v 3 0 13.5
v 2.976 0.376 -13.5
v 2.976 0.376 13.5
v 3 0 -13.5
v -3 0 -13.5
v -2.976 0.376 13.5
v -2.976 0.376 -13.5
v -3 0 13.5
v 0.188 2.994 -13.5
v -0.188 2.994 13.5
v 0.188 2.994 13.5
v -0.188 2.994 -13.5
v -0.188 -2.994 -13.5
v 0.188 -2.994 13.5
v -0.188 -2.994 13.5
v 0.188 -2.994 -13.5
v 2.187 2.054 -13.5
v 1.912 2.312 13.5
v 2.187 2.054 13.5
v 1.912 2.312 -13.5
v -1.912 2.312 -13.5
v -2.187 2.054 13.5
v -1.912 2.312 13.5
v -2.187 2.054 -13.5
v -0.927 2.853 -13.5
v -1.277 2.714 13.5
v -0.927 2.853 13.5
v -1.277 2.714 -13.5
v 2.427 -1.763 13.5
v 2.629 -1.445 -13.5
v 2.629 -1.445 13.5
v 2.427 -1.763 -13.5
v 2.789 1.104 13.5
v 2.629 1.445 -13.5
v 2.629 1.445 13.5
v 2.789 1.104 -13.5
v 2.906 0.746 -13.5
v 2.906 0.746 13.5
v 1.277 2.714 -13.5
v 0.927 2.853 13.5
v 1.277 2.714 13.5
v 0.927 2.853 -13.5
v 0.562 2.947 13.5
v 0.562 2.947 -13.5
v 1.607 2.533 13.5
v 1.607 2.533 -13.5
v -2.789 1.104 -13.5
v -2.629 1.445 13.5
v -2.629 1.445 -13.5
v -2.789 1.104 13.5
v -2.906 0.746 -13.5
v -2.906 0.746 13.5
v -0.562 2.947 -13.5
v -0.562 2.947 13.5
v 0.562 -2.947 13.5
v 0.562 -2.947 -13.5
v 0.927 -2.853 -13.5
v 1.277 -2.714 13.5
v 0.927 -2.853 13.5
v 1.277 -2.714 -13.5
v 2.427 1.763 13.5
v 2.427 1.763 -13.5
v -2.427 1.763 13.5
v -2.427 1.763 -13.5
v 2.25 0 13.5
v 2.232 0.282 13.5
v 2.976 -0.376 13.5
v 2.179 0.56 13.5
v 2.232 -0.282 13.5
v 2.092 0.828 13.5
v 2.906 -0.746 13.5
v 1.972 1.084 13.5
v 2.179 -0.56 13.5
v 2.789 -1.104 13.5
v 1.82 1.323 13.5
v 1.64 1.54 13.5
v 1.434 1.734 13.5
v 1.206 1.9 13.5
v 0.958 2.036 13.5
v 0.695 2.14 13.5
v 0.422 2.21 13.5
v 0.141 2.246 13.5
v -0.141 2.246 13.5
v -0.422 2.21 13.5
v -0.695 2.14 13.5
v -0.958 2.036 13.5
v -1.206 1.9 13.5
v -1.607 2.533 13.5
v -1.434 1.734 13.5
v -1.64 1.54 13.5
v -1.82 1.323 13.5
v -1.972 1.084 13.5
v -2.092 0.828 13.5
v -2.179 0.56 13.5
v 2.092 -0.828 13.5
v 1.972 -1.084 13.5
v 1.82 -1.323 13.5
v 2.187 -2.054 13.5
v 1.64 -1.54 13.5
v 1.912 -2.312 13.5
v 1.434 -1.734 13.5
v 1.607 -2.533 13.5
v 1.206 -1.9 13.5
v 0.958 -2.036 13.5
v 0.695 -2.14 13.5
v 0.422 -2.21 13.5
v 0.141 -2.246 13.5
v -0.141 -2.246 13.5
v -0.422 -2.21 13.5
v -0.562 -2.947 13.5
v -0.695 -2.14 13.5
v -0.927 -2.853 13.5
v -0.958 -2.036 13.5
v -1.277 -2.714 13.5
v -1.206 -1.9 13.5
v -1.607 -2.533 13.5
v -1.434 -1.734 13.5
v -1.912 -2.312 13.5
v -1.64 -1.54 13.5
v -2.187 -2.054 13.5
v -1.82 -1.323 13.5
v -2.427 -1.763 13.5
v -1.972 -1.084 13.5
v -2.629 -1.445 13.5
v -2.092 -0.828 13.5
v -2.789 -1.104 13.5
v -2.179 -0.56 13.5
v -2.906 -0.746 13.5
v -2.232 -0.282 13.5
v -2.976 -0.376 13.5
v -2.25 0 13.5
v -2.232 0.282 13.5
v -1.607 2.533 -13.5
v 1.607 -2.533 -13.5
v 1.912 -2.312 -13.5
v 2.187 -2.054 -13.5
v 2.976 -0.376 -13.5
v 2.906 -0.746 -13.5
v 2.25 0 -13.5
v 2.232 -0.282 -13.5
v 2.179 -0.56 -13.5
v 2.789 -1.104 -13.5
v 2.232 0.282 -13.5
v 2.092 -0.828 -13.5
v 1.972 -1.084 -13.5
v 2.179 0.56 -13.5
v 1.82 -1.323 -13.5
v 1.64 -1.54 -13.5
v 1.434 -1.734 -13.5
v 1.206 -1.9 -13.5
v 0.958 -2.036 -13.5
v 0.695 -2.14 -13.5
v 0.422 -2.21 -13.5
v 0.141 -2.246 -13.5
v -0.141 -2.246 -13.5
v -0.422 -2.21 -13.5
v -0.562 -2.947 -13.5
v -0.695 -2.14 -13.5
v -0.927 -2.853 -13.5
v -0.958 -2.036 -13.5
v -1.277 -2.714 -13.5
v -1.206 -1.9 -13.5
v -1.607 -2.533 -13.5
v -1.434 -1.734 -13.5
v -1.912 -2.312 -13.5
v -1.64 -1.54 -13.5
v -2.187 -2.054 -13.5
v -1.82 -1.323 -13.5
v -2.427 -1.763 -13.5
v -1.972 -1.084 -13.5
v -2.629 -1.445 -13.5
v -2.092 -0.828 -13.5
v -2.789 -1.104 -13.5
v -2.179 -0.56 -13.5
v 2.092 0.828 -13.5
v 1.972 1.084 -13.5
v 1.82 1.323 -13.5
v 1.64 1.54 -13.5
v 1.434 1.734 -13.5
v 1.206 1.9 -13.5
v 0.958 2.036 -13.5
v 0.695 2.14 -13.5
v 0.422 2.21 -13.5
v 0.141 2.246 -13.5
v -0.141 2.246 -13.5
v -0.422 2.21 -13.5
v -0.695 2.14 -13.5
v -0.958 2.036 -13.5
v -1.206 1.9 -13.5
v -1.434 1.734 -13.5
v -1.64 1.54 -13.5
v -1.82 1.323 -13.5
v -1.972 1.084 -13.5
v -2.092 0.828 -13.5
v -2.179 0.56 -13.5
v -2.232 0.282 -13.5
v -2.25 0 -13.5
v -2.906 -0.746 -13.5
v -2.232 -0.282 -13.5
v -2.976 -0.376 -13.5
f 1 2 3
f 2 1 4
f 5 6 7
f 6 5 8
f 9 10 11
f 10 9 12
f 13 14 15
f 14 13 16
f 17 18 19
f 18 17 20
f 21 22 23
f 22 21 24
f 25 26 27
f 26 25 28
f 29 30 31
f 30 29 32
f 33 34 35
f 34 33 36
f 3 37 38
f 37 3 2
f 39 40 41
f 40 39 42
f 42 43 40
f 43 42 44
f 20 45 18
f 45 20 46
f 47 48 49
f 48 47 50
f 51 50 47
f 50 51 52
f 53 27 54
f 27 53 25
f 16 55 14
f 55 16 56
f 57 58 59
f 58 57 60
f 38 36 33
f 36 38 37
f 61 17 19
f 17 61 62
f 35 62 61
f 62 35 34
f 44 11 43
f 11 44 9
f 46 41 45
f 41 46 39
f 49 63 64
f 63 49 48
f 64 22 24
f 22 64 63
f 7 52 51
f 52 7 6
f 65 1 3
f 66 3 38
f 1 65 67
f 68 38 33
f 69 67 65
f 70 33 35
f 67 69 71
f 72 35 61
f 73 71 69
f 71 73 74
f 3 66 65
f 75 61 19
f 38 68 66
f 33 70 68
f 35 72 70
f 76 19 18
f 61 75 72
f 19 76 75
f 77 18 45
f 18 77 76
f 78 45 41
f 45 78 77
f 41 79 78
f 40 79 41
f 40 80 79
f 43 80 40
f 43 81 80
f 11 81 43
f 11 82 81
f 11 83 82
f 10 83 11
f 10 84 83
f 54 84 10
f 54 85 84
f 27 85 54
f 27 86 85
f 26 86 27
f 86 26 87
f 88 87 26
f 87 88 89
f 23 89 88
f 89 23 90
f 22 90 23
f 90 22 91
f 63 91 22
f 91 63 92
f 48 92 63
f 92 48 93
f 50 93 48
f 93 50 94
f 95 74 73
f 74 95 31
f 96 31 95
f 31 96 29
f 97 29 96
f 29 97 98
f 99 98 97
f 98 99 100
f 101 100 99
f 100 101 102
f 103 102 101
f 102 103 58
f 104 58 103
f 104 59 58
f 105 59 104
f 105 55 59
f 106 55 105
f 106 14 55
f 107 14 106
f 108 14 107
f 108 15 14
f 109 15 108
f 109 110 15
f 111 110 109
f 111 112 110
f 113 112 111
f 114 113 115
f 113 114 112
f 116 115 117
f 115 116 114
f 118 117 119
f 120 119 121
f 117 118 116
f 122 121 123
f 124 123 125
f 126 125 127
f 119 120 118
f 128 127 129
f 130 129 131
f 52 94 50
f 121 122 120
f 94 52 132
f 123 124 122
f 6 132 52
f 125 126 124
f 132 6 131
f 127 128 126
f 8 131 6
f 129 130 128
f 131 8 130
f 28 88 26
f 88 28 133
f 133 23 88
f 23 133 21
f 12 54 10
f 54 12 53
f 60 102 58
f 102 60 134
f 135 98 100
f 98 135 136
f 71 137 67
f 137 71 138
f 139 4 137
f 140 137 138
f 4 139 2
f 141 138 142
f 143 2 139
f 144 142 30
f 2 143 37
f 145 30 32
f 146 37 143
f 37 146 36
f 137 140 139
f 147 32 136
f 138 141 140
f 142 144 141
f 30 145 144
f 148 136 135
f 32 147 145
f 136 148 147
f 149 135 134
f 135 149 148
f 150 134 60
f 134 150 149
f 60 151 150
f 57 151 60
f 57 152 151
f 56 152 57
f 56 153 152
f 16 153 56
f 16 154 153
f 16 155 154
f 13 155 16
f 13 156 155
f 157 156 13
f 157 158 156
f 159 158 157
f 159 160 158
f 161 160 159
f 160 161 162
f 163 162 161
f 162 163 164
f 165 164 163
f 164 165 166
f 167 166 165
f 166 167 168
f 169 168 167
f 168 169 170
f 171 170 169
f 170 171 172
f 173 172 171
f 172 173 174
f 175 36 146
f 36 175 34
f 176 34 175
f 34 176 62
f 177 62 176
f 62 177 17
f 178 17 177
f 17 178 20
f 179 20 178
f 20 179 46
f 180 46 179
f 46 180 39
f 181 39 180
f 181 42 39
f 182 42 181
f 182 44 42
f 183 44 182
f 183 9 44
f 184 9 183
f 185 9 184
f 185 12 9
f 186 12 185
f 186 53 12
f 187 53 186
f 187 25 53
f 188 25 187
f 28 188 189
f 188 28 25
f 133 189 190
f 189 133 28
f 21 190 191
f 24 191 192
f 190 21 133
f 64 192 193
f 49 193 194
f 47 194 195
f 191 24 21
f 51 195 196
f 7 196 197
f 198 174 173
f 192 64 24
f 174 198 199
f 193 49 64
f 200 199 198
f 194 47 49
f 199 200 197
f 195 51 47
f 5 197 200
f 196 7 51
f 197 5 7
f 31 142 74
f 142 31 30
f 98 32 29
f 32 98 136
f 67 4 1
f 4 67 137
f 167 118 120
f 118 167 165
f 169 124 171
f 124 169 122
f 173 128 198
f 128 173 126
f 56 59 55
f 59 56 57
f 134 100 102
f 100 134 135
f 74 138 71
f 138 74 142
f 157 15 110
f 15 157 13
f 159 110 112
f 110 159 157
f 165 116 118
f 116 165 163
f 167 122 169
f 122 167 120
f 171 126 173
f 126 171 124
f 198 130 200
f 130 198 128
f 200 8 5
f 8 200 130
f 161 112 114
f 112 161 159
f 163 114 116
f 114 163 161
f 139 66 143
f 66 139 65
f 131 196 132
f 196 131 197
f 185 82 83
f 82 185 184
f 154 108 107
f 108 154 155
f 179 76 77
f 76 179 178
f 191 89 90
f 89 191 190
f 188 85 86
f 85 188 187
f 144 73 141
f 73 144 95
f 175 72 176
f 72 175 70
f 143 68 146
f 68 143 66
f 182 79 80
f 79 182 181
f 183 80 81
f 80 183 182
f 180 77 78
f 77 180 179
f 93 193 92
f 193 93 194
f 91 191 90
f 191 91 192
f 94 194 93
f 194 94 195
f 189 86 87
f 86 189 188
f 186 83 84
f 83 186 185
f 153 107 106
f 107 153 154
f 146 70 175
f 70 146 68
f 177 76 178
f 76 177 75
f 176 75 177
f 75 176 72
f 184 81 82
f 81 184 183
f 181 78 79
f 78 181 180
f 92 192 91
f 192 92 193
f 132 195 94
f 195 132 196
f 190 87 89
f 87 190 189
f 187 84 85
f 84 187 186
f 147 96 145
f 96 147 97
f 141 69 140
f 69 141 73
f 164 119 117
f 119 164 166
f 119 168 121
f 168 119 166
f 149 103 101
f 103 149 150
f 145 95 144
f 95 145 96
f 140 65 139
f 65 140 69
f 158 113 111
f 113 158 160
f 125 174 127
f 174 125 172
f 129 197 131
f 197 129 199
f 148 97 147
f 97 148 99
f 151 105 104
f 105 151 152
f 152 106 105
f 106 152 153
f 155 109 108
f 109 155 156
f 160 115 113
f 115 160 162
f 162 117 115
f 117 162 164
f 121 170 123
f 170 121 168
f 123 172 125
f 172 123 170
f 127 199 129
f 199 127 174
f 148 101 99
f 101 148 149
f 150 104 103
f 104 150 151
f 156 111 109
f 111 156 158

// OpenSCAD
$fn = 50;


difference() {
	union() {
		translate(v = [0, 0, -13.5000000000]) {
			cylinder(h = 27, r = 3.0000000000);
		}
	}
	union() {
		translate(v = [0, 0, -100.0000000000]) {
			cylinder(h = 200, r = 2.2500000000);
		}
	}
}
